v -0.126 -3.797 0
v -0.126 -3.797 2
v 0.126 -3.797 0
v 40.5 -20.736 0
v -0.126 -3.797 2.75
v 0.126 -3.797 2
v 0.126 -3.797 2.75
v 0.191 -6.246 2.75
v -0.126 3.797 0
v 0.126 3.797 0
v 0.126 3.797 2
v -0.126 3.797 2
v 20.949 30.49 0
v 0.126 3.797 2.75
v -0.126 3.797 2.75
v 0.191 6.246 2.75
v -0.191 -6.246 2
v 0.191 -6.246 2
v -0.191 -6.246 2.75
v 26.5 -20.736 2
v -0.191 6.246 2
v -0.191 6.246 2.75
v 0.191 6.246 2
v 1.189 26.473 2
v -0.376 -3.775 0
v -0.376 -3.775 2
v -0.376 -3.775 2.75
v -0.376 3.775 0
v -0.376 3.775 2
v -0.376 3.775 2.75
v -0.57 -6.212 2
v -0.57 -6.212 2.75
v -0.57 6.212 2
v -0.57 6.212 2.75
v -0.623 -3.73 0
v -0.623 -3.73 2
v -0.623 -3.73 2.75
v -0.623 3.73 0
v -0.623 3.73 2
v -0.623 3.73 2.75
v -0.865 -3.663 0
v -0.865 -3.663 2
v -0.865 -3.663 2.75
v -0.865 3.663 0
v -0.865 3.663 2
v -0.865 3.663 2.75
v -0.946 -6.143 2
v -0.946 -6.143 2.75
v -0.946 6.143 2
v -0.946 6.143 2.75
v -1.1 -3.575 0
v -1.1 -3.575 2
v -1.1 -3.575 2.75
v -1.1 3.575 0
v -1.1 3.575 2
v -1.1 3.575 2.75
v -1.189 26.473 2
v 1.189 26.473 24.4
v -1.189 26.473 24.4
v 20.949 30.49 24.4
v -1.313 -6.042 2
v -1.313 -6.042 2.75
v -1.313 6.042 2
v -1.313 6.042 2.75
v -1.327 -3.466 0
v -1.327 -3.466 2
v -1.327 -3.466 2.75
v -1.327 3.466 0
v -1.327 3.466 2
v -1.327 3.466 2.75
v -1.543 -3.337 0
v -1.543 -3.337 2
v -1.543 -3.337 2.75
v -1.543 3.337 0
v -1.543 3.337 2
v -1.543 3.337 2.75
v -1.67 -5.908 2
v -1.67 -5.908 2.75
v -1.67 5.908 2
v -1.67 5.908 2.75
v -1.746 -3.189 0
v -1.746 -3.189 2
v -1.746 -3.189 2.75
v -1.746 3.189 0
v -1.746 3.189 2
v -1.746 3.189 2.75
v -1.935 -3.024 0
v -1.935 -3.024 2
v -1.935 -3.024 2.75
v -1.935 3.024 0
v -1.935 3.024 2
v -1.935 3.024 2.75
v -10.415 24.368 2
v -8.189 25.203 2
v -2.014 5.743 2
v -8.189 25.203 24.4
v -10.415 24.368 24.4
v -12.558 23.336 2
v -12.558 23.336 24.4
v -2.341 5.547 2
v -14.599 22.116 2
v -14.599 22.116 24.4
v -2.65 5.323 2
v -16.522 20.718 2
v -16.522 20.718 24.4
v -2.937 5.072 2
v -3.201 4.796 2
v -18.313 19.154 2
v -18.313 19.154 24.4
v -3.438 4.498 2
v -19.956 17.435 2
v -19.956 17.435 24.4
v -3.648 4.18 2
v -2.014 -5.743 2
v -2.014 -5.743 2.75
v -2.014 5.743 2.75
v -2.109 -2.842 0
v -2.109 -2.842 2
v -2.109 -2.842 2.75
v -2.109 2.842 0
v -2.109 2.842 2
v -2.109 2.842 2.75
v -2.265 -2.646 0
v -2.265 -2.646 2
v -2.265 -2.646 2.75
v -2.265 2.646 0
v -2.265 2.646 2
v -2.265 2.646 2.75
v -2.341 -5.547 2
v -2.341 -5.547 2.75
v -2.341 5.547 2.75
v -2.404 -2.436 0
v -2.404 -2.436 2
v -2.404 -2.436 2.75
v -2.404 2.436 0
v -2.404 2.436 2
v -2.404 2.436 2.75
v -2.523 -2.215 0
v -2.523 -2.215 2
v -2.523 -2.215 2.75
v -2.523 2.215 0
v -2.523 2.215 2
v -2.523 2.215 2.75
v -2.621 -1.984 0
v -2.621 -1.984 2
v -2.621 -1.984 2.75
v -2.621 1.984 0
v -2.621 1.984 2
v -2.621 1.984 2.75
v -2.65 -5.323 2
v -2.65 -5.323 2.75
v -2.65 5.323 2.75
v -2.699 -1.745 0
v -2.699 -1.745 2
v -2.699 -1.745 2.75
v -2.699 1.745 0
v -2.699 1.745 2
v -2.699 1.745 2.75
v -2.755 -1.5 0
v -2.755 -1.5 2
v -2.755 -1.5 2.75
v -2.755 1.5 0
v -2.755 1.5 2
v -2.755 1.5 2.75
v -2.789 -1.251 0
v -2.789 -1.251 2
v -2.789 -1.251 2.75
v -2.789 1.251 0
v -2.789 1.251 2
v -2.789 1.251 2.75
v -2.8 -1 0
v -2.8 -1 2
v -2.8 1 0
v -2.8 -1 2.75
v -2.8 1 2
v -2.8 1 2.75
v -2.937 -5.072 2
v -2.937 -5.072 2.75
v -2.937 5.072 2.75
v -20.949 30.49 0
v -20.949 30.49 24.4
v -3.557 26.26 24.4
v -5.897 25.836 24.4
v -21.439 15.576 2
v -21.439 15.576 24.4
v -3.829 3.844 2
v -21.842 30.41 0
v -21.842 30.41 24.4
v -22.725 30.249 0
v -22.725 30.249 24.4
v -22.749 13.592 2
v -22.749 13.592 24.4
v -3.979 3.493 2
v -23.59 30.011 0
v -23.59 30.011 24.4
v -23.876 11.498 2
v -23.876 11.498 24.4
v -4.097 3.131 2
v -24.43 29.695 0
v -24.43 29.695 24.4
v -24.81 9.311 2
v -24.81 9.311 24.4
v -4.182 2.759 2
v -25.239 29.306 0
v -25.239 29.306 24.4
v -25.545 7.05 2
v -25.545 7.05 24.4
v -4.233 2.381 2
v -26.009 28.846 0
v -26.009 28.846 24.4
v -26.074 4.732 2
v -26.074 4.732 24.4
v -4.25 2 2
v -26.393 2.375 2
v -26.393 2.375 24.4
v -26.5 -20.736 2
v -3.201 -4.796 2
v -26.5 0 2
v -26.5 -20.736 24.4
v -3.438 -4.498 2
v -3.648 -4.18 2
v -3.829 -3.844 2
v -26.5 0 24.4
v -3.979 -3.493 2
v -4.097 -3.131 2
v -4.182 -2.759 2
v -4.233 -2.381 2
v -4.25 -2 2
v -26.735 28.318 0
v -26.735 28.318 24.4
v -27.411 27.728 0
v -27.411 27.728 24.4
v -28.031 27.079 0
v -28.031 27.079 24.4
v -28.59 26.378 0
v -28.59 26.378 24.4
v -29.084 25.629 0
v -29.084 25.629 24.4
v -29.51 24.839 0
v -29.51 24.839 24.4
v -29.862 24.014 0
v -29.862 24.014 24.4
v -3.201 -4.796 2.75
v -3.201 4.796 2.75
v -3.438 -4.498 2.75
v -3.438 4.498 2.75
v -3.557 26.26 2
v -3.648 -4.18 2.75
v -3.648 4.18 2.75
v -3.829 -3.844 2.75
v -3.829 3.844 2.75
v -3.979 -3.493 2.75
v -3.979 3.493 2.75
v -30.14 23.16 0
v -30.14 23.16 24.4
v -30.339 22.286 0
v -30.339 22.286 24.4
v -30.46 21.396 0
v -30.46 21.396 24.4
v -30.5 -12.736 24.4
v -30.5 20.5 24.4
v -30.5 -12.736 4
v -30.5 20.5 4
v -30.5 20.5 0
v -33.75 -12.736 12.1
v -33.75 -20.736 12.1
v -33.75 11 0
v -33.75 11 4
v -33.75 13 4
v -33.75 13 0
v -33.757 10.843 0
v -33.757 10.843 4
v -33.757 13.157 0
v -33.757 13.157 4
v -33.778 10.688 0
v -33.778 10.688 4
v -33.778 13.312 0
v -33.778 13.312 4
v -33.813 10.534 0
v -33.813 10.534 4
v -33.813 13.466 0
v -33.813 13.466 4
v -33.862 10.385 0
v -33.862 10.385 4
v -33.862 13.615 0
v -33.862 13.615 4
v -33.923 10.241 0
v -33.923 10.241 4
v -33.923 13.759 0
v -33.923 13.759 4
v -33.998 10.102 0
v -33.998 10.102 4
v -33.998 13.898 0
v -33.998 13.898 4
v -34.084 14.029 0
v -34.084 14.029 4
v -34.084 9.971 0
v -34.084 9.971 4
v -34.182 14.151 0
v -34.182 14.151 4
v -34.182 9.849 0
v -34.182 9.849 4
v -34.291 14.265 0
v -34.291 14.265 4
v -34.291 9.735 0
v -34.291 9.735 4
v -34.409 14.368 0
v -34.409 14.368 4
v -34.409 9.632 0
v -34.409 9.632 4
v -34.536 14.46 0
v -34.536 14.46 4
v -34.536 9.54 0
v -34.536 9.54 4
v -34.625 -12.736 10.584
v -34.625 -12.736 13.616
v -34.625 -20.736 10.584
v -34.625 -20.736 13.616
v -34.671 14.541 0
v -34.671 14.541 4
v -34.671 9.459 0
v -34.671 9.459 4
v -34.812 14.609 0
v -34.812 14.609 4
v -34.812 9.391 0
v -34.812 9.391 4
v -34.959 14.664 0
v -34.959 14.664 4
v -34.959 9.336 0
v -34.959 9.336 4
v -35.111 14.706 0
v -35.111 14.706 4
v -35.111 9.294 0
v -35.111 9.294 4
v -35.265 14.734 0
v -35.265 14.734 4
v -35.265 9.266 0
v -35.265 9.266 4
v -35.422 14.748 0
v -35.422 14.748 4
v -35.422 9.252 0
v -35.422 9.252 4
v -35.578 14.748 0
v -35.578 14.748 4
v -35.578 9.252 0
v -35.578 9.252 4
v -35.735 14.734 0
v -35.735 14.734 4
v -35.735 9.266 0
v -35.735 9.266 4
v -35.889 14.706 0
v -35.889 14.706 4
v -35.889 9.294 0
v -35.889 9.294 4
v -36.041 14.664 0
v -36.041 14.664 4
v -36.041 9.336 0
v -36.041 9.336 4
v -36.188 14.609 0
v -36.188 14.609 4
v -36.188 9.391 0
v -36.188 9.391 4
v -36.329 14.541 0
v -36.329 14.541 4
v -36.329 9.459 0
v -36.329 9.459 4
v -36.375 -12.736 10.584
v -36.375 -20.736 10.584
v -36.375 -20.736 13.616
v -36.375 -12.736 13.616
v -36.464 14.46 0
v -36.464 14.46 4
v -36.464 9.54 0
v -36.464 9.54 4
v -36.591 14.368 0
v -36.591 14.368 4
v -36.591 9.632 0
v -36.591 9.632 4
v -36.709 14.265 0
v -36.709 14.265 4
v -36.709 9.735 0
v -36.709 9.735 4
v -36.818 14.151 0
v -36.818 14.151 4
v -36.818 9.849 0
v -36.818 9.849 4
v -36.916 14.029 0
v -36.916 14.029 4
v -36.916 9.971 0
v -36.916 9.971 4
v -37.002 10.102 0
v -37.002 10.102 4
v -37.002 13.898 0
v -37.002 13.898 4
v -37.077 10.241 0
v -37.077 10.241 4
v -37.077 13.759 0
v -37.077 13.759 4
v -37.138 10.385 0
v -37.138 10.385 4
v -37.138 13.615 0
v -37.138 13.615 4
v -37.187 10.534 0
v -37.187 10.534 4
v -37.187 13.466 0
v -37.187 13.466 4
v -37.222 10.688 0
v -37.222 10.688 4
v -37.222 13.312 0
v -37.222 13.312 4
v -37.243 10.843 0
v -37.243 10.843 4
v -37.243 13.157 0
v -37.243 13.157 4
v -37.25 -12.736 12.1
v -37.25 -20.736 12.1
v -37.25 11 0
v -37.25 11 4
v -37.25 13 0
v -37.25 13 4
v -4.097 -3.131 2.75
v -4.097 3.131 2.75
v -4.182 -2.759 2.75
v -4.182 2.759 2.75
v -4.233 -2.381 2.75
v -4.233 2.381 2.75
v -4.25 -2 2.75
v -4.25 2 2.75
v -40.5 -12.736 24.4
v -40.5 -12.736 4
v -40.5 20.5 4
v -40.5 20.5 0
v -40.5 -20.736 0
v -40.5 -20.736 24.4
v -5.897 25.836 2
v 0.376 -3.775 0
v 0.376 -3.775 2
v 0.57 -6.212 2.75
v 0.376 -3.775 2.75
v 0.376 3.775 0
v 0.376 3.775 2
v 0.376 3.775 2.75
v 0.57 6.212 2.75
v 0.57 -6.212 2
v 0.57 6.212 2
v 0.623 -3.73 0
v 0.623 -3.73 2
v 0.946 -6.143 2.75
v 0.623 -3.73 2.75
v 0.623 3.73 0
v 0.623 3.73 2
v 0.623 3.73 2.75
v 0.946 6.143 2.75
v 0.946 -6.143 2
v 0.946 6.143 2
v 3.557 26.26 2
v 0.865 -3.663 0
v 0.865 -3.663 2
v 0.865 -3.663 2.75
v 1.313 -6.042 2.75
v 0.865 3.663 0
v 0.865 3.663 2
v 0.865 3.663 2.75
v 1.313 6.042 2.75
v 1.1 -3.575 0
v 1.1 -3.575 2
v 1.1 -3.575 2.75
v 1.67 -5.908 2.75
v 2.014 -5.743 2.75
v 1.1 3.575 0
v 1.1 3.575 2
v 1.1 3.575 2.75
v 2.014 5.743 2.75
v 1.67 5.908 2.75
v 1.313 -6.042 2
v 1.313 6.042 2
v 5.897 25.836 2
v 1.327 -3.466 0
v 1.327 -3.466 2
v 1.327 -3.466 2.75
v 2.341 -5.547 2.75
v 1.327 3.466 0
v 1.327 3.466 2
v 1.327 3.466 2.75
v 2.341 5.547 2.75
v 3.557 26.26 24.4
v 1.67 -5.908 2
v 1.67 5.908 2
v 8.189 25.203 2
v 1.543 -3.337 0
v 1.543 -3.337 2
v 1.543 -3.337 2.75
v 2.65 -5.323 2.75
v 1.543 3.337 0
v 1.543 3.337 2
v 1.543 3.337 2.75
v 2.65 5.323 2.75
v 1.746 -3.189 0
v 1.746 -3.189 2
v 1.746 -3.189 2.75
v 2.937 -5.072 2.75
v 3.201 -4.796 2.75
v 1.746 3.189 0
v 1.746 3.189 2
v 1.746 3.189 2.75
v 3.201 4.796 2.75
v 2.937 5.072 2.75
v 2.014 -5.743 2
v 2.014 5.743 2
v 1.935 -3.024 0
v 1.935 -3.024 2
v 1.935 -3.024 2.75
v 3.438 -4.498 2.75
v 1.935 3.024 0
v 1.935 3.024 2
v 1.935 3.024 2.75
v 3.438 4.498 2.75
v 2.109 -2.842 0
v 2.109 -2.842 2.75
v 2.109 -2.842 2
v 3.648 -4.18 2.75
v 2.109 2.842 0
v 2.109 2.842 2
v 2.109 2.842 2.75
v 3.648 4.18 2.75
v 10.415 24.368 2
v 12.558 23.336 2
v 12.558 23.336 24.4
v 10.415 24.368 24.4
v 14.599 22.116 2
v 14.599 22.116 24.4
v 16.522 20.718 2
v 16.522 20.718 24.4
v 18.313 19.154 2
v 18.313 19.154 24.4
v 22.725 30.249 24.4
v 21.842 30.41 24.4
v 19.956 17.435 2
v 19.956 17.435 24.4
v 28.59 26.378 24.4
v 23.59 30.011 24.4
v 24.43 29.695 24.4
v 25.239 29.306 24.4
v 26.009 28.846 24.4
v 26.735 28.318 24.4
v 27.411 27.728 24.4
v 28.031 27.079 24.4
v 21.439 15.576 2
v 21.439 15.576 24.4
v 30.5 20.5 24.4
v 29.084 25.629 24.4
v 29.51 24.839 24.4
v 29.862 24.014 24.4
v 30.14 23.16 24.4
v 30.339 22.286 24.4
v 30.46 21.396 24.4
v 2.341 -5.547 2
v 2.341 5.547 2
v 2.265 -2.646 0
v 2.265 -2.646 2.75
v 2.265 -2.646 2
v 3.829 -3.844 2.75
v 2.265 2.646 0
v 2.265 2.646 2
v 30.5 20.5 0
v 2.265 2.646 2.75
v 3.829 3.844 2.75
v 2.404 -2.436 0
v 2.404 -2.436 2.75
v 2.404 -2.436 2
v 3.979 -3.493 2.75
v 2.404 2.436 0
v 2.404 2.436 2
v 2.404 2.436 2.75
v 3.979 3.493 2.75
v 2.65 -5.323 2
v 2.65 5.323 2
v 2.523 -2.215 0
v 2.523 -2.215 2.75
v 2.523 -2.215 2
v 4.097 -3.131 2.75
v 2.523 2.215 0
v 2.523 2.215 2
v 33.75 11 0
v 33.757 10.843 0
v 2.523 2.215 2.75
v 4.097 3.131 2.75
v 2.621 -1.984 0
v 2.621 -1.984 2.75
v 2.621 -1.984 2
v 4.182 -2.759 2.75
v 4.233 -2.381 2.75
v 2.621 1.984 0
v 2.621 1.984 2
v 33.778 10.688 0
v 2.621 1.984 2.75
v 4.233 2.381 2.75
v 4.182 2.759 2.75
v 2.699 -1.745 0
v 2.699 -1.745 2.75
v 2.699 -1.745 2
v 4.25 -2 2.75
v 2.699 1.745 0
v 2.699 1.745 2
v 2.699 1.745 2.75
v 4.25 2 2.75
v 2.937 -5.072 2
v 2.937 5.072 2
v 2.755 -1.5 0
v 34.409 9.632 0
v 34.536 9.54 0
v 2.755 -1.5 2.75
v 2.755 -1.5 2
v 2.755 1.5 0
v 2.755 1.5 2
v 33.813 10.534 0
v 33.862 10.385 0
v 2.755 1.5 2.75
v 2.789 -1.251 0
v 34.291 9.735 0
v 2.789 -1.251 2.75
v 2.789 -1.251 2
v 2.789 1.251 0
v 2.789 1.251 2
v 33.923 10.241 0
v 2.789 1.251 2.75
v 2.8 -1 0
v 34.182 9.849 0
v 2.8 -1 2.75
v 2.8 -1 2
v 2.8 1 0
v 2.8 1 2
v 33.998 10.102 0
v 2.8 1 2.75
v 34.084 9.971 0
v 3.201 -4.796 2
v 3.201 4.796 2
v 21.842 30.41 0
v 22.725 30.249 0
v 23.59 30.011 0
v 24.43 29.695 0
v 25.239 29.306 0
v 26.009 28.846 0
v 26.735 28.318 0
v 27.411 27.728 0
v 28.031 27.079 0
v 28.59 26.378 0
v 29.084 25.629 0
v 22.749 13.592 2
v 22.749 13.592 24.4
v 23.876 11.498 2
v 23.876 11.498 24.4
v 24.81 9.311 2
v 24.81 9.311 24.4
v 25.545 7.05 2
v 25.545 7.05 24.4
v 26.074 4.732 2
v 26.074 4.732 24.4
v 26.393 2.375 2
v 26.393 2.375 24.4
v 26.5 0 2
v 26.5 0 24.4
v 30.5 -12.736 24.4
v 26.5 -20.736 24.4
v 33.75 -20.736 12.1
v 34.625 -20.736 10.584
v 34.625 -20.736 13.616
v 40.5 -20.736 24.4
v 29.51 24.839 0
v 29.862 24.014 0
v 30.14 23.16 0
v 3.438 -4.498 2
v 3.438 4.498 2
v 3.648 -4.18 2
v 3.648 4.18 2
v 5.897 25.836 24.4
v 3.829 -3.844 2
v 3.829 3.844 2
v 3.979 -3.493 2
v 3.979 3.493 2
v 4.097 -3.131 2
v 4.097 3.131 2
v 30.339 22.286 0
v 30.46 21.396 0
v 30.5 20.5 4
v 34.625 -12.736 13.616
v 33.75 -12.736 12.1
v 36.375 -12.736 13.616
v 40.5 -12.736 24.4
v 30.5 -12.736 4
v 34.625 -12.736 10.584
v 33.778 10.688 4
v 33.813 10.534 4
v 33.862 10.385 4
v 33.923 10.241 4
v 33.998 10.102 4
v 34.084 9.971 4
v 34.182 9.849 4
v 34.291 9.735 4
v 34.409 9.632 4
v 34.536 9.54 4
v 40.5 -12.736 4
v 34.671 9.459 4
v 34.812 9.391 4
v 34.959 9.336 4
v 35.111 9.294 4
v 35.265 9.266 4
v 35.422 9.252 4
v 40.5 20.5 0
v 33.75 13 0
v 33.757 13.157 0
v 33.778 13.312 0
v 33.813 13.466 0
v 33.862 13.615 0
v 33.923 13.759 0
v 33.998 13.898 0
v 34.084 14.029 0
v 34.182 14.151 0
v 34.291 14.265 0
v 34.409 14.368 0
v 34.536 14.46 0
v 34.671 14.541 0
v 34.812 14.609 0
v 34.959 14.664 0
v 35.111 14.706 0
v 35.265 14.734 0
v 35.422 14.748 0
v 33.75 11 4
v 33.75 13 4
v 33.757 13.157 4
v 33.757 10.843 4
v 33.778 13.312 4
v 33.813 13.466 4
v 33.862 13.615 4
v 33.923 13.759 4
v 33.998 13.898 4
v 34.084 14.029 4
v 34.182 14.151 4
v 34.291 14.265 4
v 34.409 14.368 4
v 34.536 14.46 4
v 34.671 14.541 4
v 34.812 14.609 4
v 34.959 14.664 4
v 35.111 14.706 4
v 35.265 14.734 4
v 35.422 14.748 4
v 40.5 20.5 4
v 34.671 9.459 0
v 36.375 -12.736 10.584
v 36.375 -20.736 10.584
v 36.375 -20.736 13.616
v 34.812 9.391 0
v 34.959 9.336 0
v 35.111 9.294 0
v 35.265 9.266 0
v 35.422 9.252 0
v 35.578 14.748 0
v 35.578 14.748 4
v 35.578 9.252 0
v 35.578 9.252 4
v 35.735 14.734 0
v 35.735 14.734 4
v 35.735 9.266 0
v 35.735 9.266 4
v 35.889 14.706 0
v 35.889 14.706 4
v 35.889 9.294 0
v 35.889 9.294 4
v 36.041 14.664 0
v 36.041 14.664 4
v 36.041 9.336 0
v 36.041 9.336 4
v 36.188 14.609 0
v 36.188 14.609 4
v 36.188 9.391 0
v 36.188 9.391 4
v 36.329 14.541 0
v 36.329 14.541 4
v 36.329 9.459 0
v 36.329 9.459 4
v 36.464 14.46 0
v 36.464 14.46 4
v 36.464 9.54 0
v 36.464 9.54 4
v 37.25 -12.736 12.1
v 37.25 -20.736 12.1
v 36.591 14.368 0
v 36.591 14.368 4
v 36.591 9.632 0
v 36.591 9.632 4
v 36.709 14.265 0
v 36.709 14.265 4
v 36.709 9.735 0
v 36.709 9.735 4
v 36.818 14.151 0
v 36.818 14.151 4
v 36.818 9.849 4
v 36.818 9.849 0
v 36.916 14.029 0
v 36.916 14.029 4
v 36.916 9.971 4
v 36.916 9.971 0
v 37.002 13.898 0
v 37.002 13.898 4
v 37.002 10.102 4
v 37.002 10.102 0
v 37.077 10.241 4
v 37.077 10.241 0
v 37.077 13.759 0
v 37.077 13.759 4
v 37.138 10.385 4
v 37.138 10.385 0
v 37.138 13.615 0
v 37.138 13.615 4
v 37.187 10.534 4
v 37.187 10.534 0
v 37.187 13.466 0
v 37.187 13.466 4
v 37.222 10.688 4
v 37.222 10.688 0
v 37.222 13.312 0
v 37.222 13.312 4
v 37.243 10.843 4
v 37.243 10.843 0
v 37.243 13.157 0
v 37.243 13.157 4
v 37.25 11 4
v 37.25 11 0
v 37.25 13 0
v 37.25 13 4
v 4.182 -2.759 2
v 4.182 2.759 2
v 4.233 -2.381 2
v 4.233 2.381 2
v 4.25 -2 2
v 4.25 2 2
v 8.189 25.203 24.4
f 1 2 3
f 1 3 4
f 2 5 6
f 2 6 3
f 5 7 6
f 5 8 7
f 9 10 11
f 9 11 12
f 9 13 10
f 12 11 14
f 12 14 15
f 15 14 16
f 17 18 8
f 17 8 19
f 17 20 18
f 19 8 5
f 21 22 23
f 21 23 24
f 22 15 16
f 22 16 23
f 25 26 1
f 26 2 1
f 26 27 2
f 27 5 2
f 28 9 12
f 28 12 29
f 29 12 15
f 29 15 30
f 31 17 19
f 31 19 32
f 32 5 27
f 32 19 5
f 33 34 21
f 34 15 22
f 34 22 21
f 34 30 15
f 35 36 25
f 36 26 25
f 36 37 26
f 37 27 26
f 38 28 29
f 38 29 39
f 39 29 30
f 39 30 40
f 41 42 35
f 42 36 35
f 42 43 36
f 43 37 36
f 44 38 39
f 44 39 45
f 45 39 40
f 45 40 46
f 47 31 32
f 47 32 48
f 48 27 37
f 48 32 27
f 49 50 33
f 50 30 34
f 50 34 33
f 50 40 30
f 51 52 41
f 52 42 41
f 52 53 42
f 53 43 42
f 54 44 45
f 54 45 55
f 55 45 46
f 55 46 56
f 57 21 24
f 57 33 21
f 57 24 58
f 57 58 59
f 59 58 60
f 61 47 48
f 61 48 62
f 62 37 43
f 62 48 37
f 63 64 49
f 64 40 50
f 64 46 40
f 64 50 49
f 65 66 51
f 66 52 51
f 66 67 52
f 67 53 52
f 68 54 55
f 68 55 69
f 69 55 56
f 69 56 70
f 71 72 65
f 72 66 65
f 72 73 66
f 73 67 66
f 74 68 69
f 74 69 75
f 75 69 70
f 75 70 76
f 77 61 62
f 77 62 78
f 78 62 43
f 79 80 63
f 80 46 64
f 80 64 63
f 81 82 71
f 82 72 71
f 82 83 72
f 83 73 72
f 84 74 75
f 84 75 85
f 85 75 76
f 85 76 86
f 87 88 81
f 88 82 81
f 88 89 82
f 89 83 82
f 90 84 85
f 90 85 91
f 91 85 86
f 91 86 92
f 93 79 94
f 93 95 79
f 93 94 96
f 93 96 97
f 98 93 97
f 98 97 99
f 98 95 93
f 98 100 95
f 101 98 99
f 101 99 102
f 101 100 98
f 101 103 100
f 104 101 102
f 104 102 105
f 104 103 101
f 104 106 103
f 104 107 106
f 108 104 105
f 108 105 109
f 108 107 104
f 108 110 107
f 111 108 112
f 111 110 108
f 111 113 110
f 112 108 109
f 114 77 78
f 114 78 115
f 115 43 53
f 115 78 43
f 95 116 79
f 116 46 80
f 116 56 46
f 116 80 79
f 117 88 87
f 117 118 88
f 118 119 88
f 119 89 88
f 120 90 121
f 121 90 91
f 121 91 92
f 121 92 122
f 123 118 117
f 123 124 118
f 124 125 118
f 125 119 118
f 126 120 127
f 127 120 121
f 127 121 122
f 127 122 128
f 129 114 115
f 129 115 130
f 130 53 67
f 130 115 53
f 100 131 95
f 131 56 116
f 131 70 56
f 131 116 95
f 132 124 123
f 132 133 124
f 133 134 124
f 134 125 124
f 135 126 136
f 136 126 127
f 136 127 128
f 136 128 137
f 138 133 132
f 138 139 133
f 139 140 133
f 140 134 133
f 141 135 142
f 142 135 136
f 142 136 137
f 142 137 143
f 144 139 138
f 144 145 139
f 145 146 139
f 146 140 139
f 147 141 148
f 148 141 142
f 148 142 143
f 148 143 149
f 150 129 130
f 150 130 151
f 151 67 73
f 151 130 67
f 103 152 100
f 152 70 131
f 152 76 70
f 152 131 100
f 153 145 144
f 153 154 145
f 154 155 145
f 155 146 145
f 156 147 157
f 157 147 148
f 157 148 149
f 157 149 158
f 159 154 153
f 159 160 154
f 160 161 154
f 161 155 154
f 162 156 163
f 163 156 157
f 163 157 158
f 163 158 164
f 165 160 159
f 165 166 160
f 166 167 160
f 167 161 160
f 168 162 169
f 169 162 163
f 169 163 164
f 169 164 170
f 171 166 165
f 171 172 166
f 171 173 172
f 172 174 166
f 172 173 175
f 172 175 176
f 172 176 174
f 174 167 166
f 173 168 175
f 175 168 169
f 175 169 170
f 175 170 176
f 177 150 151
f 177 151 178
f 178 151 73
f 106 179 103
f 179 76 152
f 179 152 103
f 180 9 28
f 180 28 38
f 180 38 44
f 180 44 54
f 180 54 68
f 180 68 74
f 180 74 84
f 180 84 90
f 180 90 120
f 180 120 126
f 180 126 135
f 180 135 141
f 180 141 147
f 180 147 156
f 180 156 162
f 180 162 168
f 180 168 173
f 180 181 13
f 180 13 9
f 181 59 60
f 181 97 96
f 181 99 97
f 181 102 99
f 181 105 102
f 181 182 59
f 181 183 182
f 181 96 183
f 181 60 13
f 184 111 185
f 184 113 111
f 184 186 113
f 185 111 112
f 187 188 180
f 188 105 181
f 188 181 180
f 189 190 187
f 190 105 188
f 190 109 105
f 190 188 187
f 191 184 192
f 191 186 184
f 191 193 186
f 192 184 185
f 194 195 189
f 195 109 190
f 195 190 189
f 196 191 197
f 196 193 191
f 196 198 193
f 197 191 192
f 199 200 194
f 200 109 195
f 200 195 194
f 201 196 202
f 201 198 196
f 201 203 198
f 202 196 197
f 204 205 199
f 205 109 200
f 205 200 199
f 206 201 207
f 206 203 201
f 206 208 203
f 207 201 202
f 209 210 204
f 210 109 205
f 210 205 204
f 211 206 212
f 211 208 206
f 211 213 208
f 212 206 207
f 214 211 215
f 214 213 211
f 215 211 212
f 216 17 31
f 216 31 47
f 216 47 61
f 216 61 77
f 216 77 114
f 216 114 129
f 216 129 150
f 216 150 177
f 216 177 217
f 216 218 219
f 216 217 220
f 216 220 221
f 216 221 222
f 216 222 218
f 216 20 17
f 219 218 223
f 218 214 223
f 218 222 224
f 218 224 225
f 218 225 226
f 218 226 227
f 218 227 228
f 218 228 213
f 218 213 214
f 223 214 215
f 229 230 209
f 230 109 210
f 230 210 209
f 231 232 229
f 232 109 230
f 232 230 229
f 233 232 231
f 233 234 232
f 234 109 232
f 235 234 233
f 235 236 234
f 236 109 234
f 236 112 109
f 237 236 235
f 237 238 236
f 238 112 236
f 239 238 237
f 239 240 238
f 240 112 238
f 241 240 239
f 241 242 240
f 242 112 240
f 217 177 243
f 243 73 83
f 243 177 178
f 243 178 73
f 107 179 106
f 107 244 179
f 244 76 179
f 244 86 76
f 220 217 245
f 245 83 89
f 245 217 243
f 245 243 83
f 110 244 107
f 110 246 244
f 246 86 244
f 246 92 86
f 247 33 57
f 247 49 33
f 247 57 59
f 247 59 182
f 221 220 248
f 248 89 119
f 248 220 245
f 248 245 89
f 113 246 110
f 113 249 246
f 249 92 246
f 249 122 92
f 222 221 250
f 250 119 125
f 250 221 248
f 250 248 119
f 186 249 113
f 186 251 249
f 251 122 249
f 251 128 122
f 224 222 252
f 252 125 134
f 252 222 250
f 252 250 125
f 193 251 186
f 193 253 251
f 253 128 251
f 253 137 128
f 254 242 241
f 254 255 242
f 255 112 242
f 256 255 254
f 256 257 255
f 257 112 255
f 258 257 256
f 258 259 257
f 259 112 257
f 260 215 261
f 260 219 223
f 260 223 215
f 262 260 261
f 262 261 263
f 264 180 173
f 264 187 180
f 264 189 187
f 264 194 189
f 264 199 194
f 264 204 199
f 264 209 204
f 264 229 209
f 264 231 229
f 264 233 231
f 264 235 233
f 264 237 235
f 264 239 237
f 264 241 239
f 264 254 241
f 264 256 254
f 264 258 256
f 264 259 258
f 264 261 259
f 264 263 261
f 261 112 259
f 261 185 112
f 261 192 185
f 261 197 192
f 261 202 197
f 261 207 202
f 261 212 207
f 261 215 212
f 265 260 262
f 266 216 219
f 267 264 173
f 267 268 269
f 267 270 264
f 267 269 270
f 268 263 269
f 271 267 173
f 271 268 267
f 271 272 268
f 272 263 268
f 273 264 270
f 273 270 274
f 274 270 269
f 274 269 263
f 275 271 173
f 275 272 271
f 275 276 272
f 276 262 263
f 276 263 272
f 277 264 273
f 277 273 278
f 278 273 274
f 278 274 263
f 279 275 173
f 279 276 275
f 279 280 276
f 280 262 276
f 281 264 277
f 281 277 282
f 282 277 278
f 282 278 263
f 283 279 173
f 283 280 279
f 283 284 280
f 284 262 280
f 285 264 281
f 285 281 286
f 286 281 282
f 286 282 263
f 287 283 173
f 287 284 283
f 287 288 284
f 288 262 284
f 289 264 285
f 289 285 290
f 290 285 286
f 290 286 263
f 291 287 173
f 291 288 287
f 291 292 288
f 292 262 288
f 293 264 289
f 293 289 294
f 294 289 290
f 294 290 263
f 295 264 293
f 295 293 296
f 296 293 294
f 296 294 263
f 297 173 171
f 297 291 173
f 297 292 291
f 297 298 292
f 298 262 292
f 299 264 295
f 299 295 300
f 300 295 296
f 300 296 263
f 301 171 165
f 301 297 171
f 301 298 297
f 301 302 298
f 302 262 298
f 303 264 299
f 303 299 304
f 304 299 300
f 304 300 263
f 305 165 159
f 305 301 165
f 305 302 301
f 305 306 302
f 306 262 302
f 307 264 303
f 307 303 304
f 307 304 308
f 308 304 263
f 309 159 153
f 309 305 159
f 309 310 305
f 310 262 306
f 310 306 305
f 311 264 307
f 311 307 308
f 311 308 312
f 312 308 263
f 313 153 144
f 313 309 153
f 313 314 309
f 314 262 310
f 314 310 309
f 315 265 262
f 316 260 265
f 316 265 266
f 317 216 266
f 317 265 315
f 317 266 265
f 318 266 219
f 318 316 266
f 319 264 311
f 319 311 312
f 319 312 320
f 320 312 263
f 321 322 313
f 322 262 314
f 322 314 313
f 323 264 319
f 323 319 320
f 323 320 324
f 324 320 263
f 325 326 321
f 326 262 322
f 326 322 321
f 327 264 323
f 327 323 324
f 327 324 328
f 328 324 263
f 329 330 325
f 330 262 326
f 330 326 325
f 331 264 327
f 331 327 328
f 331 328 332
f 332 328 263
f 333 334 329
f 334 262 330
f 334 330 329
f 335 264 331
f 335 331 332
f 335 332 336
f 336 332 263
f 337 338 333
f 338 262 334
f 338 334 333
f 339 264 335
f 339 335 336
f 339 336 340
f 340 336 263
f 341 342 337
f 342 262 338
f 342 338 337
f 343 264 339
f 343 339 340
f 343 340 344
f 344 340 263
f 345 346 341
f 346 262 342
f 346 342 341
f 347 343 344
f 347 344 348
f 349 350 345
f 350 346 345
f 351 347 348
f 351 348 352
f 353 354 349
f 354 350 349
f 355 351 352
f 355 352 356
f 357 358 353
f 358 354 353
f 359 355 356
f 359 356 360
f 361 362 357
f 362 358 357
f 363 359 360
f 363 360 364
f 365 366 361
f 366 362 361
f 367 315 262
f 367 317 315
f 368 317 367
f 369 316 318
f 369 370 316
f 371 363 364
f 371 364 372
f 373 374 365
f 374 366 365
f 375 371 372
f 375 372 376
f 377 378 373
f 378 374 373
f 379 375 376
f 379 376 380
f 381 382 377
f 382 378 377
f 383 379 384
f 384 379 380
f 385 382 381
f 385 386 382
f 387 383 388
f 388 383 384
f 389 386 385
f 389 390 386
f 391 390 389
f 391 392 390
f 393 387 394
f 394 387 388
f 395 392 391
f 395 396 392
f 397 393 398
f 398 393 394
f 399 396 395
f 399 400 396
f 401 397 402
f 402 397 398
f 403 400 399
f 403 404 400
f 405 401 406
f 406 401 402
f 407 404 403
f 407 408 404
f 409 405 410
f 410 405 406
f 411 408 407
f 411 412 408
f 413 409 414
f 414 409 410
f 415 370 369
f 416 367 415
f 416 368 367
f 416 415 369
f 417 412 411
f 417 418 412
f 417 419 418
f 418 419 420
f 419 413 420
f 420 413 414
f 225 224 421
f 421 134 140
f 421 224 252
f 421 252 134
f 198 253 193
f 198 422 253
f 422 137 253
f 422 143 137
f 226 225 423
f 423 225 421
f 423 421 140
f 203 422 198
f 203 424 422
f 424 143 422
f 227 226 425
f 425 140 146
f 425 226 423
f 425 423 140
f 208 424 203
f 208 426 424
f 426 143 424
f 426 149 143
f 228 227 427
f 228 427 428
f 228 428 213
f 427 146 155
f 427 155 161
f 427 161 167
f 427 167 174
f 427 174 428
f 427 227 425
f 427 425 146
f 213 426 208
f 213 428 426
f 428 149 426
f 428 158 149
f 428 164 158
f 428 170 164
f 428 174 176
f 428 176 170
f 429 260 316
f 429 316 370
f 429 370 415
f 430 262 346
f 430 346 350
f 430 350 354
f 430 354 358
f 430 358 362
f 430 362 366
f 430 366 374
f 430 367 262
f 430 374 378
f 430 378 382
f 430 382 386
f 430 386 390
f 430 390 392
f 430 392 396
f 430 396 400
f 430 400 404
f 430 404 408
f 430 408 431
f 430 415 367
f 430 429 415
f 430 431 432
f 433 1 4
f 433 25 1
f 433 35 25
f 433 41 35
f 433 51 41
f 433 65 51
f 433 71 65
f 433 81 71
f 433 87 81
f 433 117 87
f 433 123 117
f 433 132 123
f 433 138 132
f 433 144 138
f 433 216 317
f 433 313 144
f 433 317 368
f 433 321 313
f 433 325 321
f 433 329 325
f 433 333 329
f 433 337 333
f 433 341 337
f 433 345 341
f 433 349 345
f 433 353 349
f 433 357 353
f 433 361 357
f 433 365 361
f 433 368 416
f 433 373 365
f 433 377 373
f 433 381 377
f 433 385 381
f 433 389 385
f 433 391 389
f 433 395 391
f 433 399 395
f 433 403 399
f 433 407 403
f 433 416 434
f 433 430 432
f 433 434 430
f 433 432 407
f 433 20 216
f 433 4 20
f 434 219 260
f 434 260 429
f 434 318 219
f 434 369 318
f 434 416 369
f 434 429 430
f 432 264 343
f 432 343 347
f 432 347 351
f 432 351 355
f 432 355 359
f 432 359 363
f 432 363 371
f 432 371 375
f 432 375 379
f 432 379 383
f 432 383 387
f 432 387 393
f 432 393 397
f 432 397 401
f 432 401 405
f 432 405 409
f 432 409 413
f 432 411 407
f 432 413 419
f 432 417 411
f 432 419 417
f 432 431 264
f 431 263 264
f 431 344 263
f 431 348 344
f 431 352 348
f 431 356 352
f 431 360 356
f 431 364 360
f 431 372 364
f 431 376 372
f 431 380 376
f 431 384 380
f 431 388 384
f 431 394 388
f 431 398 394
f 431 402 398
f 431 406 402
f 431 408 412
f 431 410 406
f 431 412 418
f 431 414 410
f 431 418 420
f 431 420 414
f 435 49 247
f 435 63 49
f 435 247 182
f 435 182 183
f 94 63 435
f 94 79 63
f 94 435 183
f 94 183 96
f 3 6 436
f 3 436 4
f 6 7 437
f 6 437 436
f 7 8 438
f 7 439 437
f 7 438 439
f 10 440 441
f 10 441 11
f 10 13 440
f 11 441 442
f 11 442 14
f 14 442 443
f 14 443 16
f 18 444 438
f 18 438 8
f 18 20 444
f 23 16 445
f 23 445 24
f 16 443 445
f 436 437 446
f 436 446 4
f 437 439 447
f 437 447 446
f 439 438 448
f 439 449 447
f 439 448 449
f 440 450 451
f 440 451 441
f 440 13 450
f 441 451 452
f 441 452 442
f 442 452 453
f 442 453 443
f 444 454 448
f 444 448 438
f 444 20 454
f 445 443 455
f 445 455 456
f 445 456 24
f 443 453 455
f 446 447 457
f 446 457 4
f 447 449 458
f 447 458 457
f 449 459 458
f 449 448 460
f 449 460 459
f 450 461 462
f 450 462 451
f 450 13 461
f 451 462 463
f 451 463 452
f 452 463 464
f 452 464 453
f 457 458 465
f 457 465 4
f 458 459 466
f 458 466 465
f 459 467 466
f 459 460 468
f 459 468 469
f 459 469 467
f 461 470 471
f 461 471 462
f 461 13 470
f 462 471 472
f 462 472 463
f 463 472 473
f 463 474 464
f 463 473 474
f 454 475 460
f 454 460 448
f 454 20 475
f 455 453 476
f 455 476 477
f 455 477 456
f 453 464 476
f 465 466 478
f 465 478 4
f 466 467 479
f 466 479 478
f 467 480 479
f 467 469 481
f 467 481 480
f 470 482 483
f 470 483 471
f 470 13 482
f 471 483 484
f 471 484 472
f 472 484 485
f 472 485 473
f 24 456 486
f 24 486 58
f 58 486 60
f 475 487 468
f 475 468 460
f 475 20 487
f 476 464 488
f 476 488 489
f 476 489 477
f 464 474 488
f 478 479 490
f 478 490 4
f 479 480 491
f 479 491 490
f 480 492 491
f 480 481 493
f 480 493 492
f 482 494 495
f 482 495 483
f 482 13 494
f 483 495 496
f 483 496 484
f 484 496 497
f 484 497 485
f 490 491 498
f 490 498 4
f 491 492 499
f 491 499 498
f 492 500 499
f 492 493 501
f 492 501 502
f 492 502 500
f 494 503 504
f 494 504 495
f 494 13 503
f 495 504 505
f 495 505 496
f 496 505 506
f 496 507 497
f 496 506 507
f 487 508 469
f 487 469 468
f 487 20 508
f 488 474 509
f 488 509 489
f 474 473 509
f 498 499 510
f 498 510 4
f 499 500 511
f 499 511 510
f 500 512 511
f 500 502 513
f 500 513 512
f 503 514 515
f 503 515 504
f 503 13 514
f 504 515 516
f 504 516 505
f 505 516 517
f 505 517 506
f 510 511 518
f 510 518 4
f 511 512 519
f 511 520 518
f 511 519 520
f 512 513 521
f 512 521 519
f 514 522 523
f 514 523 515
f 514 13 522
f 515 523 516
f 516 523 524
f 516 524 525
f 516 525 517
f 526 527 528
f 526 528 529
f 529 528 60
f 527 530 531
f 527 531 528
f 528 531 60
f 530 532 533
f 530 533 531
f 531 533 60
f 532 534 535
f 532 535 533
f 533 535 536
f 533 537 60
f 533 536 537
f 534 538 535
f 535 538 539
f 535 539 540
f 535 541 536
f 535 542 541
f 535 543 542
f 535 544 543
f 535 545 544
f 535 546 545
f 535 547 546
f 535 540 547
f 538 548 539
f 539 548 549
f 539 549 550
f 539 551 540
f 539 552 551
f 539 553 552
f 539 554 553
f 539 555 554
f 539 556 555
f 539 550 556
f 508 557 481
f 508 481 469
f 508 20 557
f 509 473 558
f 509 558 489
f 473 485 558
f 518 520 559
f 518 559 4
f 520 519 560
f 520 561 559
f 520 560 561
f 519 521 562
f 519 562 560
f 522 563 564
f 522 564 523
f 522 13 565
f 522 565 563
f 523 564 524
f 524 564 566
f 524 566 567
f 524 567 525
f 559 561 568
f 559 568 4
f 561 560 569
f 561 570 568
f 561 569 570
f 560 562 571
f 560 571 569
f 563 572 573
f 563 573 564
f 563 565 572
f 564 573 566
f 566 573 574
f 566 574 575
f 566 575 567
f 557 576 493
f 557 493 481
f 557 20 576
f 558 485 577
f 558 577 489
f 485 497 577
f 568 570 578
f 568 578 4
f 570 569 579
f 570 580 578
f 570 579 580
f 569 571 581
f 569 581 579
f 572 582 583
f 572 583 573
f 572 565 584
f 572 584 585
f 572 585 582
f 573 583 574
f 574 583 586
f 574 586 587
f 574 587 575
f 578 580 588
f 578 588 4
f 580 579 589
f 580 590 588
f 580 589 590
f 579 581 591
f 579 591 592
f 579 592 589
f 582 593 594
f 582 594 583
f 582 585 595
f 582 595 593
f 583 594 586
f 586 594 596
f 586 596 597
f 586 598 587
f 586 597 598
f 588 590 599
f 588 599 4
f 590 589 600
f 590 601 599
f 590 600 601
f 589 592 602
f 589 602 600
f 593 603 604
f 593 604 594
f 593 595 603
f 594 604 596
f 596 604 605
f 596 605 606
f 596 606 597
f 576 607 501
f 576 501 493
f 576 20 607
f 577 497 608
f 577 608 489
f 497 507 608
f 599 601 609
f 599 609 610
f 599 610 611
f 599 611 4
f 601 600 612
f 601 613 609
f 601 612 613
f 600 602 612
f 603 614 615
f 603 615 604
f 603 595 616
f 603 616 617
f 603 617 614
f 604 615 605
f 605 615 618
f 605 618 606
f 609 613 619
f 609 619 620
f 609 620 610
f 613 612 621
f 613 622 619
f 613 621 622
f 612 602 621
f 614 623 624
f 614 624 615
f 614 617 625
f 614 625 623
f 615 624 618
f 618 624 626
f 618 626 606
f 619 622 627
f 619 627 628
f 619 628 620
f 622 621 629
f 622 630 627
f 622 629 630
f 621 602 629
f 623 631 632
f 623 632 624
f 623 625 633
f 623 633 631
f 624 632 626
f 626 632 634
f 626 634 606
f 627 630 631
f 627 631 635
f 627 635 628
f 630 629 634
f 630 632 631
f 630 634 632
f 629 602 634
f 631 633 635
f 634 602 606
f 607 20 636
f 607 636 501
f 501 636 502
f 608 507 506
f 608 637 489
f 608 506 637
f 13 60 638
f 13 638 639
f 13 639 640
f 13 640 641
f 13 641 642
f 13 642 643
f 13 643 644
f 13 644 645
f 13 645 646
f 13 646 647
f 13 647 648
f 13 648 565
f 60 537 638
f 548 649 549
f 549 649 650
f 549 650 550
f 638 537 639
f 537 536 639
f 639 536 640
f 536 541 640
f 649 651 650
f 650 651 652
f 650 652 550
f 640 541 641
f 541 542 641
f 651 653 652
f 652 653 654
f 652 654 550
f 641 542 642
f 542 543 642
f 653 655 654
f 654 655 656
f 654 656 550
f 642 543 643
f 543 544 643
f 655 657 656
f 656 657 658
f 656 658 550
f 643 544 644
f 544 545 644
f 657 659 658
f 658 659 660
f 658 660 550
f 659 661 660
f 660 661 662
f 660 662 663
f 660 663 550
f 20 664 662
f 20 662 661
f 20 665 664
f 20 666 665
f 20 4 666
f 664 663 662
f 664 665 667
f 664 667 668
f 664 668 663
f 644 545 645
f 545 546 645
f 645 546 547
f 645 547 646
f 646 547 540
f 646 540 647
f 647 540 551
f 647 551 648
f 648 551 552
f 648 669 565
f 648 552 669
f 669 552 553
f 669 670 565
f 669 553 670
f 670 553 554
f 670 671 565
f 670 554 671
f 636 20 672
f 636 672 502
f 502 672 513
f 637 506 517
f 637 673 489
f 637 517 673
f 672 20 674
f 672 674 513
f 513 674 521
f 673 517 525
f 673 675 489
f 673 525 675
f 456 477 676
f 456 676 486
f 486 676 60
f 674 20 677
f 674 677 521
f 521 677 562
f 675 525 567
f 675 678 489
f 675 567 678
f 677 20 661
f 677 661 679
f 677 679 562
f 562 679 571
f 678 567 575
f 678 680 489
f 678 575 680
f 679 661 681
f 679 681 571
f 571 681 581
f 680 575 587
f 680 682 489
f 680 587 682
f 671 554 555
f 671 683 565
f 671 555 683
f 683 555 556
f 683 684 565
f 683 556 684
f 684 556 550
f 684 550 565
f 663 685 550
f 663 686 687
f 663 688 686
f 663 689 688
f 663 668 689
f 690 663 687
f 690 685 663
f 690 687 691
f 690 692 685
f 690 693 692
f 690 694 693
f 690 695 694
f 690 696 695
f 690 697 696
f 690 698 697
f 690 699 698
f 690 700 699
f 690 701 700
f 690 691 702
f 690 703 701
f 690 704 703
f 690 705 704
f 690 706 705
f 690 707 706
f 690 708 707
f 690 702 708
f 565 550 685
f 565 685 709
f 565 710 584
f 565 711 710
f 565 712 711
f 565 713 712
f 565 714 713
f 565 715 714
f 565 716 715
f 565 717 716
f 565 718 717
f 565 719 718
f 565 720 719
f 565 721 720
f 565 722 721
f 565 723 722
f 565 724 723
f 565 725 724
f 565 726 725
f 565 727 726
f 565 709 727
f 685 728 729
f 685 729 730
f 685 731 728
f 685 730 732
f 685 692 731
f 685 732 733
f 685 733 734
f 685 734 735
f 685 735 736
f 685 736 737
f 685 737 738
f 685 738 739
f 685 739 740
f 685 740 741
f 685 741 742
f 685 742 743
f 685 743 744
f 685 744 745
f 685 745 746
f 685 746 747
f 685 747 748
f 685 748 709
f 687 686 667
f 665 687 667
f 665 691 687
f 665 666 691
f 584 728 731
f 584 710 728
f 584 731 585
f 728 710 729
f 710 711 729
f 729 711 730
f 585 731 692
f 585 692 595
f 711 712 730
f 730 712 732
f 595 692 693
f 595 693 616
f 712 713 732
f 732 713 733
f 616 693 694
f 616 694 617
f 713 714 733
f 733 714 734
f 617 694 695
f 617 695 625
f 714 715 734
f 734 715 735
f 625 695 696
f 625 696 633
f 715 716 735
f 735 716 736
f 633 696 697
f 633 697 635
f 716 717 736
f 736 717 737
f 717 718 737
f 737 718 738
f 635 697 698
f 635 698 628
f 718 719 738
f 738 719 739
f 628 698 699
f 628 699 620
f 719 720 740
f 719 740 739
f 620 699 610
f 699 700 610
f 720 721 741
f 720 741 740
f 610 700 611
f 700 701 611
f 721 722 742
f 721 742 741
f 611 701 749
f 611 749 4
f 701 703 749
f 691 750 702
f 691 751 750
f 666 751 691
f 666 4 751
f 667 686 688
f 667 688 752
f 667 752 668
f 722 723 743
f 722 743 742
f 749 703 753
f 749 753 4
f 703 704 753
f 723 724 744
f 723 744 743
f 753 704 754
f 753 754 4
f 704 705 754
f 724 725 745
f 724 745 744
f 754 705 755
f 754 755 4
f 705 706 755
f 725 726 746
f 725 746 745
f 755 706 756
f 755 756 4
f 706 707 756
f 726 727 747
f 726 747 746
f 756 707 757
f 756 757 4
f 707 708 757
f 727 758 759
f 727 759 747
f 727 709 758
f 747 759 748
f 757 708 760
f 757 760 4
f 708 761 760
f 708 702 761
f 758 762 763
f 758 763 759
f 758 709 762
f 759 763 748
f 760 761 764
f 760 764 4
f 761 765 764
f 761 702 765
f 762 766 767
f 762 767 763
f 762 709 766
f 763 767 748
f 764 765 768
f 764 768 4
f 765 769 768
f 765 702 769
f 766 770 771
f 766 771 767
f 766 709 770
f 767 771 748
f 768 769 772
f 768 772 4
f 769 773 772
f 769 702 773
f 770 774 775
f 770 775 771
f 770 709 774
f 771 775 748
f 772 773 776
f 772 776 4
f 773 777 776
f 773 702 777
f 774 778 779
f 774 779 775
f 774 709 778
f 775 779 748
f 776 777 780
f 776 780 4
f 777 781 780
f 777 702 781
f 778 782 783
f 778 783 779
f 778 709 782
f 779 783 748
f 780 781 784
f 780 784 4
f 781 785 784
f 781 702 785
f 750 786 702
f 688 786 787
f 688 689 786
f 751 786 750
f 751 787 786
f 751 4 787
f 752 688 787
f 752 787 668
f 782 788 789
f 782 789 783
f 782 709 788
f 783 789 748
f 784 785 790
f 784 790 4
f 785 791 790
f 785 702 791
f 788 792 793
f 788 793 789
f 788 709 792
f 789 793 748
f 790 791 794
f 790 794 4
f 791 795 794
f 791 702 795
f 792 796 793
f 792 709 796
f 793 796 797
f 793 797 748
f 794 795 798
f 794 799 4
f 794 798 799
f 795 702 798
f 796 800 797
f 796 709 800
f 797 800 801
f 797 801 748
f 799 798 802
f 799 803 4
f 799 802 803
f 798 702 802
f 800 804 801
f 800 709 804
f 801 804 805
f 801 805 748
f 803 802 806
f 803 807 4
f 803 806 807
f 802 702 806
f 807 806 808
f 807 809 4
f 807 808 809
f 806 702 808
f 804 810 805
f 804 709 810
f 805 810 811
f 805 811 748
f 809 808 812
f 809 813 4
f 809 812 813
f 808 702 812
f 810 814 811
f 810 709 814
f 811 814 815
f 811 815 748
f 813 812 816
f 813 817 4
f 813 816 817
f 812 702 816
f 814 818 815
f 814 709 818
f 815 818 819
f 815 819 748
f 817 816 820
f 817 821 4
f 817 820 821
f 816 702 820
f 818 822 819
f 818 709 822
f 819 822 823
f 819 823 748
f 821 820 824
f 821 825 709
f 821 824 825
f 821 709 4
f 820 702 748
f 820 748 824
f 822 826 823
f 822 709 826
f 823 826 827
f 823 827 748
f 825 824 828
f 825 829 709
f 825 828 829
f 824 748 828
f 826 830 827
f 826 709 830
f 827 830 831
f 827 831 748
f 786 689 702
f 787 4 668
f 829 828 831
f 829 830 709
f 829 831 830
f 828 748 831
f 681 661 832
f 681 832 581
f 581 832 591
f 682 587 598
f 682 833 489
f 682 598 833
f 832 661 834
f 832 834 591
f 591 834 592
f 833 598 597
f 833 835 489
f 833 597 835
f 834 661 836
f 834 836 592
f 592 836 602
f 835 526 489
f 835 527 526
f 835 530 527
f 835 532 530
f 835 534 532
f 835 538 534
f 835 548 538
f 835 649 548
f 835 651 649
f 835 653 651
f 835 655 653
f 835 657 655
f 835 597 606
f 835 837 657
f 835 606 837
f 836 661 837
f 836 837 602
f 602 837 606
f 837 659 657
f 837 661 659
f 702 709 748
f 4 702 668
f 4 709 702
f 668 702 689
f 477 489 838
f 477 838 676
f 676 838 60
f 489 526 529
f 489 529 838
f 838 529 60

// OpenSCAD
// file: ../605zz.scad
module 605zz() {
	difference(){
		cylinder(d=14, h=5);
		cylinder(d=11, h=5);
	}
	difference(){
		cylinder(d=7, h=5);
		cylinder(d=5, h=5);
	}

	translate([0,0,0.25])
	difference(){
		cylinder(d=11, h=4.5);
		cylinder(d=7, h=4.5);
	}
}
// file: ../hose_fixator.scad
include <../configuration.scad>

hose_fixator();

hose_fixator_length = 15;

module hose_fixator() {
	$fn = 75;

	// Length
	h=hose_fixator_length;

	//Radius
	d_hose = 9;
	hose_wall = 1.5; 
	hose_fitting_delta_d = 0.2;
	r=d_hose/2-hose_wall+hose_fitting_delta_d/2; 

	//wall thickness
	th=0.45*3; 

	difference(){
		cylinder(r=r, h=h);
		cylinder(r=r-th, h=h);
	}
}
// file: ../../configuration.scad
// Created by Phisik on 2018-12-16
// Main settings header for peristaltic pump

// Licence GPL

// some extra gap for clean difference render in preview
eps = 0.1;

// Part smoothness, the more the better
$fn = 100;

layer_height = 0.25;

// Silicon hose settings
//====================================================================================

// NB! The larger the hose radius the higher torque is required
r_hose = 22;        // radius of hose center line
                    // Update: after addition of groove hose center is at r_hose + hose_groove
d_hose = 9;         // hose diameter

hose_wall = 1.5;   // hose wall thickness
					// NB! hose_wall affects both stator & rotor geometry
					
hose_clearance = 0.2;   // extra clearance between hose & bearings
						// NB! hose_clearance affects only rotor geometry
						// If you experience lack of suction reduce hose_clearance 
						// If motor misses steps increase hose_clearance, take motor with higher 
						// torque or hose with thinner wall

hose_fitting_delta_d = 1; // difference between hose and hose fitting diameter
						
						
// Stator settings
//====================================================================================
wall = 4;             // wall thickness, should be larger than hose_groove by 1mm or more
hose_groove = 0;     // NB! Rudiment form v1. Do not change. 
					 // groove depth for hose to stay in place 

h_base = 4;             // height of stator base
h_support_base = 2;		// height of support base

stator_support_gap = 1;		// gap between support & stator base for spring tension

stator_facet = 10;   // facets of outer support corners

mount_width  = 8;
mount_length = 10;

d_screw = 3.5;           // screw diameter
d_nut = 6.5;             // nut & screw head diameter
d_nut_tight = 5.5/0.87; // nut diameter for nuts to be fitted with soldering iron

l_handle = 10;

r_water_sink = 5.5;

need_nut_cuts_in_support = 0; // cut holes for nuts in support
need_nut_cuts_in_stator  = 1; // cut holes for support nut in stator

hose_fixator_length = 15;  // length of hose inset for fixing it on the stator


// Bearing settings
//====================================================================================
bearingNum = 3;     // Number of bearings per arm

h_bearing = 5;      // bearing height
d_bearing = 14;     // OD
d_bearing_axis = 5;         // ID
w_axis = 1;         // thickness of inner bushing



// Rotor settings
//==================================================================================== 
d_rotor = 17.5;   // Outer rotor diameter

arm_num = 3;    // number of rotor arms
w_arm  = 15;    // arm width
h_arm = 3;      // arm height

enable_hose_guides = 1;
w_hose_guide = 8;
hose_guide_clearance = 0.75;
r_hose_guide_facet = 2;

gap = 0.2;      // some clearance between joins & moving parts

arm_clearance = 4;  // clearance between arm and stator

bearing_axes_clearance = 0.075;  	     // clearance on rotor base between bearings and axes
rotor_bearing_axes_clearance = 0.3;  // clearance on rotor cap between axes and holes
bearing_clearance = 1; 				 // distance from stator base to the lowest arms

// 1602 lcd settings
//====================================================================================
y_lcd_hole = 31;
x_lcd_hole = 75;
d_lcd_hole = 3;

l_lcd_plate = 80;
w_lcd_plate = 36.11;
h_lcd_plate = 1.6;

l_lcd = 71.5;
w_lcd = 24.5;
h_lcd = 8.75;

x_lcd_shift = -0.1;
y_lcd_shift = +0.75;

l_lcd_i2c = 42;
w_lcd_i2c = 19;
h_lcd_i2c = 1.5;


// Nema 17 settings
//====================================================================================
nema_screw_distance = 31;  
nema_shaft_diameter = 5.5;
nema_shaft_height = 25;
nema_knob_diameter = 23;
nema_knob_height = 2.5;
nema_width = 42.3;
nema_angle_cut = 4;
// main file
include <../pump-v3.scad>
assemble = 0;
halfcut = 0;
moved_apart = 0;
partNum = 2;
